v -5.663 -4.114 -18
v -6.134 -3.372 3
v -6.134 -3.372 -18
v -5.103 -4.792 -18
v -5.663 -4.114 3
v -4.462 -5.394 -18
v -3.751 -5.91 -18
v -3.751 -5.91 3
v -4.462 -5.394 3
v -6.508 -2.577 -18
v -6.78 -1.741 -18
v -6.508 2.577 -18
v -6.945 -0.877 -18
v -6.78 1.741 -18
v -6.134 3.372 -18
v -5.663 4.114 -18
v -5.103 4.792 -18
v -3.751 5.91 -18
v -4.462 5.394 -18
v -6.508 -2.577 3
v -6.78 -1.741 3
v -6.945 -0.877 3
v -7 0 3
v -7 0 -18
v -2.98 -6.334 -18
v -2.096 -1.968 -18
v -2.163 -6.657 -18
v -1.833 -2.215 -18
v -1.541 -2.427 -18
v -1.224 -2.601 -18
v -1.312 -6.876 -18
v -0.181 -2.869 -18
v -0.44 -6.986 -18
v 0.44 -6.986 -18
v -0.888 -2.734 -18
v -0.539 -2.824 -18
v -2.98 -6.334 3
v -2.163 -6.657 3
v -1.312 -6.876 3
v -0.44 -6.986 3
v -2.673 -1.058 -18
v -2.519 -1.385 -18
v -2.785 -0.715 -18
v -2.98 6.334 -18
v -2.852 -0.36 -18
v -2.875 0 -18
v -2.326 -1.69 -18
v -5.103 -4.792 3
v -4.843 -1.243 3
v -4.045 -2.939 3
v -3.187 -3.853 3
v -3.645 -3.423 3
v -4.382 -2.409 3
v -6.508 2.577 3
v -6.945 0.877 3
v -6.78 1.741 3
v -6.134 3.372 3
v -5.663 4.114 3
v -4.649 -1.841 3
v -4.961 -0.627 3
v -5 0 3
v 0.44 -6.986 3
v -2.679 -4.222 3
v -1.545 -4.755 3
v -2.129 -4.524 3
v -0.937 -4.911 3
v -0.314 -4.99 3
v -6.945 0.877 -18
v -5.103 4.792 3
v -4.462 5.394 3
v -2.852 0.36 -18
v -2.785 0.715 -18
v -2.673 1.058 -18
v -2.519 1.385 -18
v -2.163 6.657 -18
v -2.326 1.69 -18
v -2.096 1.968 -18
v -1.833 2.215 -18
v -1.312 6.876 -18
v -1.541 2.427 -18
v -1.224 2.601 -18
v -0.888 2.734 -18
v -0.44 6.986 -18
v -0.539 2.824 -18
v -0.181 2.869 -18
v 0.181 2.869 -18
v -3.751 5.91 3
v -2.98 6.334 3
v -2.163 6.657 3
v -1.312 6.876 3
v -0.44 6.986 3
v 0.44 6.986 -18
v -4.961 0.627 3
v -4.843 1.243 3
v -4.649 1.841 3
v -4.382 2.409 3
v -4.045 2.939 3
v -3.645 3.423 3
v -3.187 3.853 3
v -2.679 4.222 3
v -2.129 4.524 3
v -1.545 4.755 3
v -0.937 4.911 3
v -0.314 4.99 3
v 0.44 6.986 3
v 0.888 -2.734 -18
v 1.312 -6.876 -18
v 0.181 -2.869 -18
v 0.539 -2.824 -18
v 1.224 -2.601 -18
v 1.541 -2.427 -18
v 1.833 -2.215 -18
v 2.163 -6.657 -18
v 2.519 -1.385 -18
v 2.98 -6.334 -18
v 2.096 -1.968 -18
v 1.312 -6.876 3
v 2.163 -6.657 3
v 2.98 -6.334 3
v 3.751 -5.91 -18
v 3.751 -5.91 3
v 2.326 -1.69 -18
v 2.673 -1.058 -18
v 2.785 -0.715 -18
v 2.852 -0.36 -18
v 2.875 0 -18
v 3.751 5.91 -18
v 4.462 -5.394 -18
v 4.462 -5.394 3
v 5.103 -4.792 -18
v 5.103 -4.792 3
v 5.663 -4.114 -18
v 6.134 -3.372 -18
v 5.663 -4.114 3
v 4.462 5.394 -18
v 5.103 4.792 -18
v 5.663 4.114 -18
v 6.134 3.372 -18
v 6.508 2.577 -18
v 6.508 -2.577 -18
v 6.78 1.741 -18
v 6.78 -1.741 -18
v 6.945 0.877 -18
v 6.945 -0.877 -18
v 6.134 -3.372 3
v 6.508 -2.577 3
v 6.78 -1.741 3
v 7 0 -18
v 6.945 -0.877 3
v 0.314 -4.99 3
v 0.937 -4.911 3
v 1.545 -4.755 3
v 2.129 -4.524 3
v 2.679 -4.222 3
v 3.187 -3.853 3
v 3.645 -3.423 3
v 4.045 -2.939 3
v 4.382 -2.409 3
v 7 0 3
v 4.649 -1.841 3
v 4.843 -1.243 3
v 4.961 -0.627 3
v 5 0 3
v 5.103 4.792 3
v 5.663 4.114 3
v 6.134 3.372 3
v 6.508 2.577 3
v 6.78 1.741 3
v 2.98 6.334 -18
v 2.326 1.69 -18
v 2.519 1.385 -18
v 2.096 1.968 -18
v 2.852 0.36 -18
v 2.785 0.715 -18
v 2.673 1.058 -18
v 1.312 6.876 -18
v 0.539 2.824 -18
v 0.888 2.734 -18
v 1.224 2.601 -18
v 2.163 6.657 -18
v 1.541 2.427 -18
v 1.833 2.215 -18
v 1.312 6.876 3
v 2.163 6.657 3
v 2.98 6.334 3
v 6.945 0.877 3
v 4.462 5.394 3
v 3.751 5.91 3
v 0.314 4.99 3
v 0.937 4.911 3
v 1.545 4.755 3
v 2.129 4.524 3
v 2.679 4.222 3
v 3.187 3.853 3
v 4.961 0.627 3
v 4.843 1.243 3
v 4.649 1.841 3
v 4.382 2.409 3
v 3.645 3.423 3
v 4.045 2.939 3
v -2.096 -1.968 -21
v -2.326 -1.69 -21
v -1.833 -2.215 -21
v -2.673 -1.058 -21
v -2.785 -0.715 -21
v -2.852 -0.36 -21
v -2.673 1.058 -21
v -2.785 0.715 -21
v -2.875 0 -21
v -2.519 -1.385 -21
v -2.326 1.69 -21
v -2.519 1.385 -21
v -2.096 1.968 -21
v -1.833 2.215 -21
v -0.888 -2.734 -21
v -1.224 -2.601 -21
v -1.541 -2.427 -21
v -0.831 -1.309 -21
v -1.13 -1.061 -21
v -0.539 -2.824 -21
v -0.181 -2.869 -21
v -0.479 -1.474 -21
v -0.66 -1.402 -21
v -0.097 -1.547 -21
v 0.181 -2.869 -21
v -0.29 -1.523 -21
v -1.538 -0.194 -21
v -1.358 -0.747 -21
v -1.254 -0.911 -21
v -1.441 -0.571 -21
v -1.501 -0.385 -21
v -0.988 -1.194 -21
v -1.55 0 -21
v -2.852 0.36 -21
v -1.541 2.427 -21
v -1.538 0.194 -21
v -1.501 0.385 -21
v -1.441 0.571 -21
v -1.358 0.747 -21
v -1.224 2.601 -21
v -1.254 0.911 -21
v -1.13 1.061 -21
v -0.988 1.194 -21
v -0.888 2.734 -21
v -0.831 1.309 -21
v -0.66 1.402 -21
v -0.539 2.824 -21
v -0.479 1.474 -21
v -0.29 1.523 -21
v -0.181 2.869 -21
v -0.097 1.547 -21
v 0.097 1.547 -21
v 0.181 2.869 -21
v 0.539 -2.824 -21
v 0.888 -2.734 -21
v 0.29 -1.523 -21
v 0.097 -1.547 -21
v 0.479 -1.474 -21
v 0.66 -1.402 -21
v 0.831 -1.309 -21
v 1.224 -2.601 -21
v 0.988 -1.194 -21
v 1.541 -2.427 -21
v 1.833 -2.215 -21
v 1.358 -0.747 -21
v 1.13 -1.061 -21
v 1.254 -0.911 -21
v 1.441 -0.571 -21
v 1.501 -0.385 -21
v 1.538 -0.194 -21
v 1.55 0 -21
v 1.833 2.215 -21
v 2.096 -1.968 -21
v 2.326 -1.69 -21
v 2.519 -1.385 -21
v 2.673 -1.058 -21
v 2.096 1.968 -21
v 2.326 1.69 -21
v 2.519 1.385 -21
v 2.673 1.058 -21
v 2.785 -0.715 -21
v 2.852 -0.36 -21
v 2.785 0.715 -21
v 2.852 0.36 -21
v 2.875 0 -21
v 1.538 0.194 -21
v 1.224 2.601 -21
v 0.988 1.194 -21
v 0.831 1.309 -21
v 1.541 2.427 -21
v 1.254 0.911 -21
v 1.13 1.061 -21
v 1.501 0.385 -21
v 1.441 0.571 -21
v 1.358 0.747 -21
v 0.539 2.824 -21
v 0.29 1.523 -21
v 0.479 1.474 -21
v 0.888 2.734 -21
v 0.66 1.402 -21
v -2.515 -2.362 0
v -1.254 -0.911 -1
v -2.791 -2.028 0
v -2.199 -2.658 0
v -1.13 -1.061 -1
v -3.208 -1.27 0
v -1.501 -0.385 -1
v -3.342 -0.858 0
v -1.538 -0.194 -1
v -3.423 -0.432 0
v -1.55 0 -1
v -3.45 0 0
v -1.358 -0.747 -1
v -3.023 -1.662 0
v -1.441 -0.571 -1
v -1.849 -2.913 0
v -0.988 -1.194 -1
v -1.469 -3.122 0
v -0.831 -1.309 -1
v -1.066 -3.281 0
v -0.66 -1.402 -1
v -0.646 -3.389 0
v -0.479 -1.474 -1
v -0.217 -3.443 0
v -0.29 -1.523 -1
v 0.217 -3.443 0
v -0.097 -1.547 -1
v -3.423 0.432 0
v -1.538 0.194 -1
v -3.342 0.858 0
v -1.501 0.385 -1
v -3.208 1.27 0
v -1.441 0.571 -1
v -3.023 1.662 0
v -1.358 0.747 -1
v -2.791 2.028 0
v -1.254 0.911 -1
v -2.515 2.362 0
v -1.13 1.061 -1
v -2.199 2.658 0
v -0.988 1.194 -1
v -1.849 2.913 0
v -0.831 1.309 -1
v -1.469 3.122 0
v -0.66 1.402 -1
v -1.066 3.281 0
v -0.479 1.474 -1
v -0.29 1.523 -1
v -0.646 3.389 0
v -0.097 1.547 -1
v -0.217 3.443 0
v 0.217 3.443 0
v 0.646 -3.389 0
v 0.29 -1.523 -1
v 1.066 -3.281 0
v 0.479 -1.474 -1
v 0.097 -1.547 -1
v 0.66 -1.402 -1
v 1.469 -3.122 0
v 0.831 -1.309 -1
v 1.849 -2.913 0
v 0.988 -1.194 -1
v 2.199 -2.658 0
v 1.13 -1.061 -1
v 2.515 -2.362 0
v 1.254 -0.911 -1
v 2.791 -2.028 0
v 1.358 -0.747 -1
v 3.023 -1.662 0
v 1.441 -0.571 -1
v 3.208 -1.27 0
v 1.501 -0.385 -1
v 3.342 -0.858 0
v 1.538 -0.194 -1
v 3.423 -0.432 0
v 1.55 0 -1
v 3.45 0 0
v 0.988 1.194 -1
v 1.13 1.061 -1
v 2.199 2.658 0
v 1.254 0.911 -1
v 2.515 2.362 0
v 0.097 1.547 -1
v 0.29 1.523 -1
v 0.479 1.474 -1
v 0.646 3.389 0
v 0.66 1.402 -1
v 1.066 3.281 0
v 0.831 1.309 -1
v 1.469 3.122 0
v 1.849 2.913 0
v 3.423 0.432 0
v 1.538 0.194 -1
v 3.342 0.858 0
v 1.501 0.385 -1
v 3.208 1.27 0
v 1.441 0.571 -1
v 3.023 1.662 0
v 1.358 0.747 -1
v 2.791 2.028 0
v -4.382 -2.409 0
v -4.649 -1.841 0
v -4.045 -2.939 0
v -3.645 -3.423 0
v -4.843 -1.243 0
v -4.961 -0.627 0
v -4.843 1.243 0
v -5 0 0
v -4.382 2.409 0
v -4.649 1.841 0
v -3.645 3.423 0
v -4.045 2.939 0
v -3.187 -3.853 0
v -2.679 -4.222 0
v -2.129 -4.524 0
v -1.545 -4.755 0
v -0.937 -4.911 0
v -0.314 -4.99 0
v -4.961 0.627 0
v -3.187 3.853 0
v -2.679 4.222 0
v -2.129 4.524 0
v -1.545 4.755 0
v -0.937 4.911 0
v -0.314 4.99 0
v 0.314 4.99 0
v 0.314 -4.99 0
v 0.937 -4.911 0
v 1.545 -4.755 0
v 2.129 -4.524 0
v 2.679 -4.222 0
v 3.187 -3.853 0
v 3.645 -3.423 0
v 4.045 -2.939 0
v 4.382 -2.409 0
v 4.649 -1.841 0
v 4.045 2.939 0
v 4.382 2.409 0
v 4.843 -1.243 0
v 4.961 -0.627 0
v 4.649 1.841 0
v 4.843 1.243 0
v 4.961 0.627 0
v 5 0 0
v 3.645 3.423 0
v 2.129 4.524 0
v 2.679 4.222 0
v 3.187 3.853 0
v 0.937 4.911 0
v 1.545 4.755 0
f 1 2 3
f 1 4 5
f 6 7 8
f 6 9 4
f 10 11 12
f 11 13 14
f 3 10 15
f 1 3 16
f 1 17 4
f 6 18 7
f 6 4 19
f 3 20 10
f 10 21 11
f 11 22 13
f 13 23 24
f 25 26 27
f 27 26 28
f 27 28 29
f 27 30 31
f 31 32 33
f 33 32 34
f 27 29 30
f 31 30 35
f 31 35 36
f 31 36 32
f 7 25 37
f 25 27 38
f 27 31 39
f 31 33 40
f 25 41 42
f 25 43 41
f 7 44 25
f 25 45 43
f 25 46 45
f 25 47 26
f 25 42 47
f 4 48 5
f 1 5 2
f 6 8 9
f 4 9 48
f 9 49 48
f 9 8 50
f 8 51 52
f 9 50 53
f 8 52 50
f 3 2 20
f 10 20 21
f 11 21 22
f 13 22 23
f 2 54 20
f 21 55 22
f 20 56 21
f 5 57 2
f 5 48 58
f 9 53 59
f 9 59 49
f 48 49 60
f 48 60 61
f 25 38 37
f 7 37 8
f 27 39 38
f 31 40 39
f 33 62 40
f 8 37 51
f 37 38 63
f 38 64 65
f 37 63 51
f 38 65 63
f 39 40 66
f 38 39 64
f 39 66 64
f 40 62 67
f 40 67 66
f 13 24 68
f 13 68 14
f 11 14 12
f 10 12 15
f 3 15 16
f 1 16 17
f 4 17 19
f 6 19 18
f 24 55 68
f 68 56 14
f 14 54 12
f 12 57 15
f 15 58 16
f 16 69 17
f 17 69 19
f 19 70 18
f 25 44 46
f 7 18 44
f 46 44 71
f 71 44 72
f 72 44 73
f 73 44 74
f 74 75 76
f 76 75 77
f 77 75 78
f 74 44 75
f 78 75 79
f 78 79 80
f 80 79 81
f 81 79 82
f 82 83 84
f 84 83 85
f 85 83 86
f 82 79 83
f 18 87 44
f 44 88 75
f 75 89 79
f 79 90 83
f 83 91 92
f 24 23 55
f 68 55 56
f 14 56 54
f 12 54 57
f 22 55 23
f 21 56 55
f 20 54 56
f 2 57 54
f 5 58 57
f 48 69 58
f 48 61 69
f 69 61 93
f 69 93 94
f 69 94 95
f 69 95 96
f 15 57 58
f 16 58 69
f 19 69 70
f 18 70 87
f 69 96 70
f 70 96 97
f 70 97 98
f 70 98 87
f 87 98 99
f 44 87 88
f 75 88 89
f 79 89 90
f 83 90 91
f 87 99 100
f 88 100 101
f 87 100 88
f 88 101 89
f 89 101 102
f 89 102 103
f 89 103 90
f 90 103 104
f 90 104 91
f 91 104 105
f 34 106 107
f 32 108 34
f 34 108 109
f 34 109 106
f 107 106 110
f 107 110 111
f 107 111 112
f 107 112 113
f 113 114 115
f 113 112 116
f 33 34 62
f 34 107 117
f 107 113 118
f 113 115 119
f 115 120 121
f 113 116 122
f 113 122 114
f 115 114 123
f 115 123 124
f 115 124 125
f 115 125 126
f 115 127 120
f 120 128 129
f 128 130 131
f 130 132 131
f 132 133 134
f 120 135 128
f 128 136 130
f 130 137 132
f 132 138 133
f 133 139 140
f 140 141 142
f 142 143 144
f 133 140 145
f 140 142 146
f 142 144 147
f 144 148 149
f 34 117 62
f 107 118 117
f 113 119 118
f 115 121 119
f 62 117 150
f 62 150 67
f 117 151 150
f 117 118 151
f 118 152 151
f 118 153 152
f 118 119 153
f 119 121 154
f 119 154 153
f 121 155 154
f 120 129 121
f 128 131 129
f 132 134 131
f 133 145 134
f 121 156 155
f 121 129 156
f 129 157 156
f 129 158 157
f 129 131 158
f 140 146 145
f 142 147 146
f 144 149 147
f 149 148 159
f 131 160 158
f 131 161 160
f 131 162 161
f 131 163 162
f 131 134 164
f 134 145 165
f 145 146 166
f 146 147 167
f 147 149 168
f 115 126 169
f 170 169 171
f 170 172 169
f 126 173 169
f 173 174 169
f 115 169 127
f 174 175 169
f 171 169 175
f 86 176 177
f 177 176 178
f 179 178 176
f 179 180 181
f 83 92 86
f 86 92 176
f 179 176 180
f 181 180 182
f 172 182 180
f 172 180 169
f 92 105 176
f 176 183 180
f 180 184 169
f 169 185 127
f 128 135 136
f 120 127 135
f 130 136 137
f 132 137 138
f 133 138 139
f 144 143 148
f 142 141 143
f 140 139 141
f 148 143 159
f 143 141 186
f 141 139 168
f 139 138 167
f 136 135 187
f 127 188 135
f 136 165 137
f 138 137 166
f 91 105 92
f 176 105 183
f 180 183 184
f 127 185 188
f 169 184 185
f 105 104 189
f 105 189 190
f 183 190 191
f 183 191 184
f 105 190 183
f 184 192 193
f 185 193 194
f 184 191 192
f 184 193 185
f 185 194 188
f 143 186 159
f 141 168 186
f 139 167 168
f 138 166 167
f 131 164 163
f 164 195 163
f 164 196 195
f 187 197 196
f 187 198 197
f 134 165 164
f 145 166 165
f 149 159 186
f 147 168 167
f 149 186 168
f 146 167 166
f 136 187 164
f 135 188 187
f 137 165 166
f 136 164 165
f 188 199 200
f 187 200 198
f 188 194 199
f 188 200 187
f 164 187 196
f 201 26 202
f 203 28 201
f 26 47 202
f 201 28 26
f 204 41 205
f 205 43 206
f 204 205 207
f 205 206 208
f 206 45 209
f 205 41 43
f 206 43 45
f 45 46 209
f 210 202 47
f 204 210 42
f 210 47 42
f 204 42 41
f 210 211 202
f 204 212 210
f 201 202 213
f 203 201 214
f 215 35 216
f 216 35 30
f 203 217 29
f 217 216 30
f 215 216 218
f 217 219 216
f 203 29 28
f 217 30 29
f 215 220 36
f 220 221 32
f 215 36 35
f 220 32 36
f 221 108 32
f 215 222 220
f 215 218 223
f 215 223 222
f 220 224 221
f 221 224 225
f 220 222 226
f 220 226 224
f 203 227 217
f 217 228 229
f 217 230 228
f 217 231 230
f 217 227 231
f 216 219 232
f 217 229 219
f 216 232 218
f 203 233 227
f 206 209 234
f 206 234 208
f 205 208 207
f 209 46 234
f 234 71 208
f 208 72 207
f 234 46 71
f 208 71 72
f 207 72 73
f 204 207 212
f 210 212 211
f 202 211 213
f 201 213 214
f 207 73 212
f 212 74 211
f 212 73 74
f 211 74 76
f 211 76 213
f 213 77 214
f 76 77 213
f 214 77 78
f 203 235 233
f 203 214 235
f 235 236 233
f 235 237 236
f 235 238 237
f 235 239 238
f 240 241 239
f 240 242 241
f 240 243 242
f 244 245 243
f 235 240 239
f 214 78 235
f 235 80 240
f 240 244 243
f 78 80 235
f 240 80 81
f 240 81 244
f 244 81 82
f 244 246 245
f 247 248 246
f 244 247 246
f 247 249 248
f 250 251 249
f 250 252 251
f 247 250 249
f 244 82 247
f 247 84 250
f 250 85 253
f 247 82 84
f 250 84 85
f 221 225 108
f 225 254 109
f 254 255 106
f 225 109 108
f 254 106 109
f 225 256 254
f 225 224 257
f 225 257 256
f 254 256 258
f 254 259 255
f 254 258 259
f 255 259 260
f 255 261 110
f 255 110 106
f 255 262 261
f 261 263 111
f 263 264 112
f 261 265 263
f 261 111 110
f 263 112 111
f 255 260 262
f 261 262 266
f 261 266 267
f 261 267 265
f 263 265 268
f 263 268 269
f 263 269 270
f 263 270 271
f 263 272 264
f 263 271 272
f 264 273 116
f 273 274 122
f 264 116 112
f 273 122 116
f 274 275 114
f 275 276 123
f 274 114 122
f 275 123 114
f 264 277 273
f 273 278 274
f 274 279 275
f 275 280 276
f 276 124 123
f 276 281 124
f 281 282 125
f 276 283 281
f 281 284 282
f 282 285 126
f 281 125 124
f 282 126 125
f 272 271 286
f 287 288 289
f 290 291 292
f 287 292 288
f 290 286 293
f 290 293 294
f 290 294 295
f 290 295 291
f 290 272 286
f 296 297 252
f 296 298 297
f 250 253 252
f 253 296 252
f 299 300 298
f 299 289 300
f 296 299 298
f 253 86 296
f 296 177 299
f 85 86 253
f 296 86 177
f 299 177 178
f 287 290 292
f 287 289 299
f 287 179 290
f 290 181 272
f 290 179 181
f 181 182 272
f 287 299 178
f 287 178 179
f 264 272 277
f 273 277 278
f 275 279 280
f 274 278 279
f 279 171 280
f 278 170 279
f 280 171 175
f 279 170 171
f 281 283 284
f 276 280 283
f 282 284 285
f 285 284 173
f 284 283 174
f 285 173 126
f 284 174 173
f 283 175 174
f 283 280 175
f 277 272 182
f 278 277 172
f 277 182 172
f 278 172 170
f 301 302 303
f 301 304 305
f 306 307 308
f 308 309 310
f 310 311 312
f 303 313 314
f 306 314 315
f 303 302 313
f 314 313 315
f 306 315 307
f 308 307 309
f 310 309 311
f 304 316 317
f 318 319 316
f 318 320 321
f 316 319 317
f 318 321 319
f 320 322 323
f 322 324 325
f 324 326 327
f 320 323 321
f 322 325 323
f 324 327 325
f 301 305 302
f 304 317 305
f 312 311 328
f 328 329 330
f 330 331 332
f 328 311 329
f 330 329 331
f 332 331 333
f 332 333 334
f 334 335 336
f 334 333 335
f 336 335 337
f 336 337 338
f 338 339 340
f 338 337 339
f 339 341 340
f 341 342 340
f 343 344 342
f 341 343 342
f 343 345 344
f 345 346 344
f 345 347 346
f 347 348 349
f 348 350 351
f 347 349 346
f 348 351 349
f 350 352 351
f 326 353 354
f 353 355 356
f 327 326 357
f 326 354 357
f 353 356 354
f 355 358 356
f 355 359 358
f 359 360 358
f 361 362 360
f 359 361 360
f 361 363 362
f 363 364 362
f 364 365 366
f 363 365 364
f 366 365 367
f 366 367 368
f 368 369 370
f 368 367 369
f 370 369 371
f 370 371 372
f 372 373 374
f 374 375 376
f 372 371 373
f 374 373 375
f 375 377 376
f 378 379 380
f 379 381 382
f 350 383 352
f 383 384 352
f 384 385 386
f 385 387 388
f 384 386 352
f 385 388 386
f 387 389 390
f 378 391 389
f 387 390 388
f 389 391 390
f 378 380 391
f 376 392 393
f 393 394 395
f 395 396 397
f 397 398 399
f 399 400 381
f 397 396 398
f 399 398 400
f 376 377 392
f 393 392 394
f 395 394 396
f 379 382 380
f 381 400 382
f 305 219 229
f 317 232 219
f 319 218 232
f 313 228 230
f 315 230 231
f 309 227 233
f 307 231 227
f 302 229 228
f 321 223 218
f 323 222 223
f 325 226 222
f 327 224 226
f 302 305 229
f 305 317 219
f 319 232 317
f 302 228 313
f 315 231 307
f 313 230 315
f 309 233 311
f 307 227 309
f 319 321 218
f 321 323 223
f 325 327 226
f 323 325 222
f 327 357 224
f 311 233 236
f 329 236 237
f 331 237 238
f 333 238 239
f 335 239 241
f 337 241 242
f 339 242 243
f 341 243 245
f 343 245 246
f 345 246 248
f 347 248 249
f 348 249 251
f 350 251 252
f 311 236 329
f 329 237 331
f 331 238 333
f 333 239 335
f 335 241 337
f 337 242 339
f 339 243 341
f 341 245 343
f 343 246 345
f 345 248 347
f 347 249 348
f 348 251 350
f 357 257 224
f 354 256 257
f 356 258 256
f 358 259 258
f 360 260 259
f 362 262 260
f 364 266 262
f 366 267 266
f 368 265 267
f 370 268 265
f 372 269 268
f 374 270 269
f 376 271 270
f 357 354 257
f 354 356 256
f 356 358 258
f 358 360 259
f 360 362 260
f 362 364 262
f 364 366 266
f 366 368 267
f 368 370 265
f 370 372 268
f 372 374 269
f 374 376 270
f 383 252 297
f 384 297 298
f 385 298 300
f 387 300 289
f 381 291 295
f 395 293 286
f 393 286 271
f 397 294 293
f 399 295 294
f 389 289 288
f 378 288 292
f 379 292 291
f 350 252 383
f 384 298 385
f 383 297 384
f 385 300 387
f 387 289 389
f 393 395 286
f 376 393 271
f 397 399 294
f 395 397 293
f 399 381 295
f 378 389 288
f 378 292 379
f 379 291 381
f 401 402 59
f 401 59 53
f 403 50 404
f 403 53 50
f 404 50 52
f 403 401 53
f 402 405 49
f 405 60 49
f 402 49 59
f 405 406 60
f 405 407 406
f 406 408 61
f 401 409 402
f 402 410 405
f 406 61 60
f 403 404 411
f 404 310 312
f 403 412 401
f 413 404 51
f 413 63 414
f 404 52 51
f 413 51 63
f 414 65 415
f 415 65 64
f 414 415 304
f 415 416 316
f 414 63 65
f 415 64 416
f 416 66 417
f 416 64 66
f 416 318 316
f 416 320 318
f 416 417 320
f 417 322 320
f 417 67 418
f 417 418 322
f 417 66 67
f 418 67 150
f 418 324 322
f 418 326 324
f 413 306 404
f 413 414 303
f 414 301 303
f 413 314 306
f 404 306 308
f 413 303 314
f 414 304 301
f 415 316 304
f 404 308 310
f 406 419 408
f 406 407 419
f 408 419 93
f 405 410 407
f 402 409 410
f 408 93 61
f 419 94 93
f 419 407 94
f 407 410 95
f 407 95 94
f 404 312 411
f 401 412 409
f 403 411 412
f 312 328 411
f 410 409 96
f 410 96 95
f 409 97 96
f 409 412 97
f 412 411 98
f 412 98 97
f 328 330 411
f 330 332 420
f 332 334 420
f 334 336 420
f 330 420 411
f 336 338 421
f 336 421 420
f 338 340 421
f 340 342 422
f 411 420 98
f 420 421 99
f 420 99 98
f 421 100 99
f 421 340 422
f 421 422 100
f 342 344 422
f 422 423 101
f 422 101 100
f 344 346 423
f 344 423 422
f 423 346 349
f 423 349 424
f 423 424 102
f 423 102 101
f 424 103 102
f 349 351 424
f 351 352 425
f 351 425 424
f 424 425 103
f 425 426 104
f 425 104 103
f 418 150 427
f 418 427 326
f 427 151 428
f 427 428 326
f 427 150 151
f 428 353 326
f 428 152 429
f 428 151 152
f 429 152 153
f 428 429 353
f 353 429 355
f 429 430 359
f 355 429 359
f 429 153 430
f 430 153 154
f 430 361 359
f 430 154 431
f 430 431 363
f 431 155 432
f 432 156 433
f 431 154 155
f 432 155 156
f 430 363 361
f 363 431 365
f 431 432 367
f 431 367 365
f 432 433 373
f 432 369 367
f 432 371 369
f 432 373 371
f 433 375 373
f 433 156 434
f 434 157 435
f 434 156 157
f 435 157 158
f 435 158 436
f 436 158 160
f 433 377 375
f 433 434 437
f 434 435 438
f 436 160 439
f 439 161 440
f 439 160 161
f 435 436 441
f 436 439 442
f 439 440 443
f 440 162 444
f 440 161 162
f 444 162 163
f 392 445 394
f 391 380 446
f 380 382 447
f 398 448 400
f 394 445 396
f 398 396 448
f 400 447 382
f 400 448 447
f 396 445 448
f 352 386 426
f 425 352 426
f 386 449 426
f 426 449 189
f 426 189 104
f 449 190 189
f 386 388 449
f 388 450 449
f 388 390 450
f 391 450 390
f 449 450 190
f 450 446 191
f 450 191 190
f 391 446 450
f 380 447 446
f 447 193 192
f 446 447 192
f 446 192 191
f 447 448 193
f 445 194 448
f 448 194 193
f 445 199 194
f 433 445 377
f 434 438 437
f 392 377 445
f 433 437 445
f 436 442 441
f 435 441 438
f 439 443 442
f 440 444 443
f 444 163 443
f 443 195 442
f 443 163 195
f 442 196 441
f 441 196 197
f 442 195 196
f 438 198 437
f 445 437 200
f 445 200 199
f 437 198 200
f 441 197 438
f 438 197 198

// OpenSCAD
$fn = 50;

difference() {
	union() {
		translate(v = [0, 0, -18.0]) {
			cylinder(h = 21, r = 7.0);
		}
		#translate(v = [0, 0, -21.0]) {
			cylinder(h = 21, r = 2.875);
		}
	}
	union() {
		translate(v = [0, 0, 0]) {
			rotate(a = [0, 0, 0]) {
				difference() {
					union() {
						translate(v = [0, 0, -21.0]) {
							cylinder(h = 21, r = 1.25);
						}
						translate(v = [0, 0, -1.0]) {
							cylinder(h = 1.0, r1 = 1.55, r2 = 3.45);
						}
						translate(v = [0, 0, -21.0]) {
							cylinder(h = 21, r = 1.55);
						}
						translate(v = [0, 0, -21.0]) {
							cylinder(h = 21, r = 1.25);
						}
					}
					union();
				}
			}
		}
		#cylinder(h = 3, r = 5.0);
	}
}
